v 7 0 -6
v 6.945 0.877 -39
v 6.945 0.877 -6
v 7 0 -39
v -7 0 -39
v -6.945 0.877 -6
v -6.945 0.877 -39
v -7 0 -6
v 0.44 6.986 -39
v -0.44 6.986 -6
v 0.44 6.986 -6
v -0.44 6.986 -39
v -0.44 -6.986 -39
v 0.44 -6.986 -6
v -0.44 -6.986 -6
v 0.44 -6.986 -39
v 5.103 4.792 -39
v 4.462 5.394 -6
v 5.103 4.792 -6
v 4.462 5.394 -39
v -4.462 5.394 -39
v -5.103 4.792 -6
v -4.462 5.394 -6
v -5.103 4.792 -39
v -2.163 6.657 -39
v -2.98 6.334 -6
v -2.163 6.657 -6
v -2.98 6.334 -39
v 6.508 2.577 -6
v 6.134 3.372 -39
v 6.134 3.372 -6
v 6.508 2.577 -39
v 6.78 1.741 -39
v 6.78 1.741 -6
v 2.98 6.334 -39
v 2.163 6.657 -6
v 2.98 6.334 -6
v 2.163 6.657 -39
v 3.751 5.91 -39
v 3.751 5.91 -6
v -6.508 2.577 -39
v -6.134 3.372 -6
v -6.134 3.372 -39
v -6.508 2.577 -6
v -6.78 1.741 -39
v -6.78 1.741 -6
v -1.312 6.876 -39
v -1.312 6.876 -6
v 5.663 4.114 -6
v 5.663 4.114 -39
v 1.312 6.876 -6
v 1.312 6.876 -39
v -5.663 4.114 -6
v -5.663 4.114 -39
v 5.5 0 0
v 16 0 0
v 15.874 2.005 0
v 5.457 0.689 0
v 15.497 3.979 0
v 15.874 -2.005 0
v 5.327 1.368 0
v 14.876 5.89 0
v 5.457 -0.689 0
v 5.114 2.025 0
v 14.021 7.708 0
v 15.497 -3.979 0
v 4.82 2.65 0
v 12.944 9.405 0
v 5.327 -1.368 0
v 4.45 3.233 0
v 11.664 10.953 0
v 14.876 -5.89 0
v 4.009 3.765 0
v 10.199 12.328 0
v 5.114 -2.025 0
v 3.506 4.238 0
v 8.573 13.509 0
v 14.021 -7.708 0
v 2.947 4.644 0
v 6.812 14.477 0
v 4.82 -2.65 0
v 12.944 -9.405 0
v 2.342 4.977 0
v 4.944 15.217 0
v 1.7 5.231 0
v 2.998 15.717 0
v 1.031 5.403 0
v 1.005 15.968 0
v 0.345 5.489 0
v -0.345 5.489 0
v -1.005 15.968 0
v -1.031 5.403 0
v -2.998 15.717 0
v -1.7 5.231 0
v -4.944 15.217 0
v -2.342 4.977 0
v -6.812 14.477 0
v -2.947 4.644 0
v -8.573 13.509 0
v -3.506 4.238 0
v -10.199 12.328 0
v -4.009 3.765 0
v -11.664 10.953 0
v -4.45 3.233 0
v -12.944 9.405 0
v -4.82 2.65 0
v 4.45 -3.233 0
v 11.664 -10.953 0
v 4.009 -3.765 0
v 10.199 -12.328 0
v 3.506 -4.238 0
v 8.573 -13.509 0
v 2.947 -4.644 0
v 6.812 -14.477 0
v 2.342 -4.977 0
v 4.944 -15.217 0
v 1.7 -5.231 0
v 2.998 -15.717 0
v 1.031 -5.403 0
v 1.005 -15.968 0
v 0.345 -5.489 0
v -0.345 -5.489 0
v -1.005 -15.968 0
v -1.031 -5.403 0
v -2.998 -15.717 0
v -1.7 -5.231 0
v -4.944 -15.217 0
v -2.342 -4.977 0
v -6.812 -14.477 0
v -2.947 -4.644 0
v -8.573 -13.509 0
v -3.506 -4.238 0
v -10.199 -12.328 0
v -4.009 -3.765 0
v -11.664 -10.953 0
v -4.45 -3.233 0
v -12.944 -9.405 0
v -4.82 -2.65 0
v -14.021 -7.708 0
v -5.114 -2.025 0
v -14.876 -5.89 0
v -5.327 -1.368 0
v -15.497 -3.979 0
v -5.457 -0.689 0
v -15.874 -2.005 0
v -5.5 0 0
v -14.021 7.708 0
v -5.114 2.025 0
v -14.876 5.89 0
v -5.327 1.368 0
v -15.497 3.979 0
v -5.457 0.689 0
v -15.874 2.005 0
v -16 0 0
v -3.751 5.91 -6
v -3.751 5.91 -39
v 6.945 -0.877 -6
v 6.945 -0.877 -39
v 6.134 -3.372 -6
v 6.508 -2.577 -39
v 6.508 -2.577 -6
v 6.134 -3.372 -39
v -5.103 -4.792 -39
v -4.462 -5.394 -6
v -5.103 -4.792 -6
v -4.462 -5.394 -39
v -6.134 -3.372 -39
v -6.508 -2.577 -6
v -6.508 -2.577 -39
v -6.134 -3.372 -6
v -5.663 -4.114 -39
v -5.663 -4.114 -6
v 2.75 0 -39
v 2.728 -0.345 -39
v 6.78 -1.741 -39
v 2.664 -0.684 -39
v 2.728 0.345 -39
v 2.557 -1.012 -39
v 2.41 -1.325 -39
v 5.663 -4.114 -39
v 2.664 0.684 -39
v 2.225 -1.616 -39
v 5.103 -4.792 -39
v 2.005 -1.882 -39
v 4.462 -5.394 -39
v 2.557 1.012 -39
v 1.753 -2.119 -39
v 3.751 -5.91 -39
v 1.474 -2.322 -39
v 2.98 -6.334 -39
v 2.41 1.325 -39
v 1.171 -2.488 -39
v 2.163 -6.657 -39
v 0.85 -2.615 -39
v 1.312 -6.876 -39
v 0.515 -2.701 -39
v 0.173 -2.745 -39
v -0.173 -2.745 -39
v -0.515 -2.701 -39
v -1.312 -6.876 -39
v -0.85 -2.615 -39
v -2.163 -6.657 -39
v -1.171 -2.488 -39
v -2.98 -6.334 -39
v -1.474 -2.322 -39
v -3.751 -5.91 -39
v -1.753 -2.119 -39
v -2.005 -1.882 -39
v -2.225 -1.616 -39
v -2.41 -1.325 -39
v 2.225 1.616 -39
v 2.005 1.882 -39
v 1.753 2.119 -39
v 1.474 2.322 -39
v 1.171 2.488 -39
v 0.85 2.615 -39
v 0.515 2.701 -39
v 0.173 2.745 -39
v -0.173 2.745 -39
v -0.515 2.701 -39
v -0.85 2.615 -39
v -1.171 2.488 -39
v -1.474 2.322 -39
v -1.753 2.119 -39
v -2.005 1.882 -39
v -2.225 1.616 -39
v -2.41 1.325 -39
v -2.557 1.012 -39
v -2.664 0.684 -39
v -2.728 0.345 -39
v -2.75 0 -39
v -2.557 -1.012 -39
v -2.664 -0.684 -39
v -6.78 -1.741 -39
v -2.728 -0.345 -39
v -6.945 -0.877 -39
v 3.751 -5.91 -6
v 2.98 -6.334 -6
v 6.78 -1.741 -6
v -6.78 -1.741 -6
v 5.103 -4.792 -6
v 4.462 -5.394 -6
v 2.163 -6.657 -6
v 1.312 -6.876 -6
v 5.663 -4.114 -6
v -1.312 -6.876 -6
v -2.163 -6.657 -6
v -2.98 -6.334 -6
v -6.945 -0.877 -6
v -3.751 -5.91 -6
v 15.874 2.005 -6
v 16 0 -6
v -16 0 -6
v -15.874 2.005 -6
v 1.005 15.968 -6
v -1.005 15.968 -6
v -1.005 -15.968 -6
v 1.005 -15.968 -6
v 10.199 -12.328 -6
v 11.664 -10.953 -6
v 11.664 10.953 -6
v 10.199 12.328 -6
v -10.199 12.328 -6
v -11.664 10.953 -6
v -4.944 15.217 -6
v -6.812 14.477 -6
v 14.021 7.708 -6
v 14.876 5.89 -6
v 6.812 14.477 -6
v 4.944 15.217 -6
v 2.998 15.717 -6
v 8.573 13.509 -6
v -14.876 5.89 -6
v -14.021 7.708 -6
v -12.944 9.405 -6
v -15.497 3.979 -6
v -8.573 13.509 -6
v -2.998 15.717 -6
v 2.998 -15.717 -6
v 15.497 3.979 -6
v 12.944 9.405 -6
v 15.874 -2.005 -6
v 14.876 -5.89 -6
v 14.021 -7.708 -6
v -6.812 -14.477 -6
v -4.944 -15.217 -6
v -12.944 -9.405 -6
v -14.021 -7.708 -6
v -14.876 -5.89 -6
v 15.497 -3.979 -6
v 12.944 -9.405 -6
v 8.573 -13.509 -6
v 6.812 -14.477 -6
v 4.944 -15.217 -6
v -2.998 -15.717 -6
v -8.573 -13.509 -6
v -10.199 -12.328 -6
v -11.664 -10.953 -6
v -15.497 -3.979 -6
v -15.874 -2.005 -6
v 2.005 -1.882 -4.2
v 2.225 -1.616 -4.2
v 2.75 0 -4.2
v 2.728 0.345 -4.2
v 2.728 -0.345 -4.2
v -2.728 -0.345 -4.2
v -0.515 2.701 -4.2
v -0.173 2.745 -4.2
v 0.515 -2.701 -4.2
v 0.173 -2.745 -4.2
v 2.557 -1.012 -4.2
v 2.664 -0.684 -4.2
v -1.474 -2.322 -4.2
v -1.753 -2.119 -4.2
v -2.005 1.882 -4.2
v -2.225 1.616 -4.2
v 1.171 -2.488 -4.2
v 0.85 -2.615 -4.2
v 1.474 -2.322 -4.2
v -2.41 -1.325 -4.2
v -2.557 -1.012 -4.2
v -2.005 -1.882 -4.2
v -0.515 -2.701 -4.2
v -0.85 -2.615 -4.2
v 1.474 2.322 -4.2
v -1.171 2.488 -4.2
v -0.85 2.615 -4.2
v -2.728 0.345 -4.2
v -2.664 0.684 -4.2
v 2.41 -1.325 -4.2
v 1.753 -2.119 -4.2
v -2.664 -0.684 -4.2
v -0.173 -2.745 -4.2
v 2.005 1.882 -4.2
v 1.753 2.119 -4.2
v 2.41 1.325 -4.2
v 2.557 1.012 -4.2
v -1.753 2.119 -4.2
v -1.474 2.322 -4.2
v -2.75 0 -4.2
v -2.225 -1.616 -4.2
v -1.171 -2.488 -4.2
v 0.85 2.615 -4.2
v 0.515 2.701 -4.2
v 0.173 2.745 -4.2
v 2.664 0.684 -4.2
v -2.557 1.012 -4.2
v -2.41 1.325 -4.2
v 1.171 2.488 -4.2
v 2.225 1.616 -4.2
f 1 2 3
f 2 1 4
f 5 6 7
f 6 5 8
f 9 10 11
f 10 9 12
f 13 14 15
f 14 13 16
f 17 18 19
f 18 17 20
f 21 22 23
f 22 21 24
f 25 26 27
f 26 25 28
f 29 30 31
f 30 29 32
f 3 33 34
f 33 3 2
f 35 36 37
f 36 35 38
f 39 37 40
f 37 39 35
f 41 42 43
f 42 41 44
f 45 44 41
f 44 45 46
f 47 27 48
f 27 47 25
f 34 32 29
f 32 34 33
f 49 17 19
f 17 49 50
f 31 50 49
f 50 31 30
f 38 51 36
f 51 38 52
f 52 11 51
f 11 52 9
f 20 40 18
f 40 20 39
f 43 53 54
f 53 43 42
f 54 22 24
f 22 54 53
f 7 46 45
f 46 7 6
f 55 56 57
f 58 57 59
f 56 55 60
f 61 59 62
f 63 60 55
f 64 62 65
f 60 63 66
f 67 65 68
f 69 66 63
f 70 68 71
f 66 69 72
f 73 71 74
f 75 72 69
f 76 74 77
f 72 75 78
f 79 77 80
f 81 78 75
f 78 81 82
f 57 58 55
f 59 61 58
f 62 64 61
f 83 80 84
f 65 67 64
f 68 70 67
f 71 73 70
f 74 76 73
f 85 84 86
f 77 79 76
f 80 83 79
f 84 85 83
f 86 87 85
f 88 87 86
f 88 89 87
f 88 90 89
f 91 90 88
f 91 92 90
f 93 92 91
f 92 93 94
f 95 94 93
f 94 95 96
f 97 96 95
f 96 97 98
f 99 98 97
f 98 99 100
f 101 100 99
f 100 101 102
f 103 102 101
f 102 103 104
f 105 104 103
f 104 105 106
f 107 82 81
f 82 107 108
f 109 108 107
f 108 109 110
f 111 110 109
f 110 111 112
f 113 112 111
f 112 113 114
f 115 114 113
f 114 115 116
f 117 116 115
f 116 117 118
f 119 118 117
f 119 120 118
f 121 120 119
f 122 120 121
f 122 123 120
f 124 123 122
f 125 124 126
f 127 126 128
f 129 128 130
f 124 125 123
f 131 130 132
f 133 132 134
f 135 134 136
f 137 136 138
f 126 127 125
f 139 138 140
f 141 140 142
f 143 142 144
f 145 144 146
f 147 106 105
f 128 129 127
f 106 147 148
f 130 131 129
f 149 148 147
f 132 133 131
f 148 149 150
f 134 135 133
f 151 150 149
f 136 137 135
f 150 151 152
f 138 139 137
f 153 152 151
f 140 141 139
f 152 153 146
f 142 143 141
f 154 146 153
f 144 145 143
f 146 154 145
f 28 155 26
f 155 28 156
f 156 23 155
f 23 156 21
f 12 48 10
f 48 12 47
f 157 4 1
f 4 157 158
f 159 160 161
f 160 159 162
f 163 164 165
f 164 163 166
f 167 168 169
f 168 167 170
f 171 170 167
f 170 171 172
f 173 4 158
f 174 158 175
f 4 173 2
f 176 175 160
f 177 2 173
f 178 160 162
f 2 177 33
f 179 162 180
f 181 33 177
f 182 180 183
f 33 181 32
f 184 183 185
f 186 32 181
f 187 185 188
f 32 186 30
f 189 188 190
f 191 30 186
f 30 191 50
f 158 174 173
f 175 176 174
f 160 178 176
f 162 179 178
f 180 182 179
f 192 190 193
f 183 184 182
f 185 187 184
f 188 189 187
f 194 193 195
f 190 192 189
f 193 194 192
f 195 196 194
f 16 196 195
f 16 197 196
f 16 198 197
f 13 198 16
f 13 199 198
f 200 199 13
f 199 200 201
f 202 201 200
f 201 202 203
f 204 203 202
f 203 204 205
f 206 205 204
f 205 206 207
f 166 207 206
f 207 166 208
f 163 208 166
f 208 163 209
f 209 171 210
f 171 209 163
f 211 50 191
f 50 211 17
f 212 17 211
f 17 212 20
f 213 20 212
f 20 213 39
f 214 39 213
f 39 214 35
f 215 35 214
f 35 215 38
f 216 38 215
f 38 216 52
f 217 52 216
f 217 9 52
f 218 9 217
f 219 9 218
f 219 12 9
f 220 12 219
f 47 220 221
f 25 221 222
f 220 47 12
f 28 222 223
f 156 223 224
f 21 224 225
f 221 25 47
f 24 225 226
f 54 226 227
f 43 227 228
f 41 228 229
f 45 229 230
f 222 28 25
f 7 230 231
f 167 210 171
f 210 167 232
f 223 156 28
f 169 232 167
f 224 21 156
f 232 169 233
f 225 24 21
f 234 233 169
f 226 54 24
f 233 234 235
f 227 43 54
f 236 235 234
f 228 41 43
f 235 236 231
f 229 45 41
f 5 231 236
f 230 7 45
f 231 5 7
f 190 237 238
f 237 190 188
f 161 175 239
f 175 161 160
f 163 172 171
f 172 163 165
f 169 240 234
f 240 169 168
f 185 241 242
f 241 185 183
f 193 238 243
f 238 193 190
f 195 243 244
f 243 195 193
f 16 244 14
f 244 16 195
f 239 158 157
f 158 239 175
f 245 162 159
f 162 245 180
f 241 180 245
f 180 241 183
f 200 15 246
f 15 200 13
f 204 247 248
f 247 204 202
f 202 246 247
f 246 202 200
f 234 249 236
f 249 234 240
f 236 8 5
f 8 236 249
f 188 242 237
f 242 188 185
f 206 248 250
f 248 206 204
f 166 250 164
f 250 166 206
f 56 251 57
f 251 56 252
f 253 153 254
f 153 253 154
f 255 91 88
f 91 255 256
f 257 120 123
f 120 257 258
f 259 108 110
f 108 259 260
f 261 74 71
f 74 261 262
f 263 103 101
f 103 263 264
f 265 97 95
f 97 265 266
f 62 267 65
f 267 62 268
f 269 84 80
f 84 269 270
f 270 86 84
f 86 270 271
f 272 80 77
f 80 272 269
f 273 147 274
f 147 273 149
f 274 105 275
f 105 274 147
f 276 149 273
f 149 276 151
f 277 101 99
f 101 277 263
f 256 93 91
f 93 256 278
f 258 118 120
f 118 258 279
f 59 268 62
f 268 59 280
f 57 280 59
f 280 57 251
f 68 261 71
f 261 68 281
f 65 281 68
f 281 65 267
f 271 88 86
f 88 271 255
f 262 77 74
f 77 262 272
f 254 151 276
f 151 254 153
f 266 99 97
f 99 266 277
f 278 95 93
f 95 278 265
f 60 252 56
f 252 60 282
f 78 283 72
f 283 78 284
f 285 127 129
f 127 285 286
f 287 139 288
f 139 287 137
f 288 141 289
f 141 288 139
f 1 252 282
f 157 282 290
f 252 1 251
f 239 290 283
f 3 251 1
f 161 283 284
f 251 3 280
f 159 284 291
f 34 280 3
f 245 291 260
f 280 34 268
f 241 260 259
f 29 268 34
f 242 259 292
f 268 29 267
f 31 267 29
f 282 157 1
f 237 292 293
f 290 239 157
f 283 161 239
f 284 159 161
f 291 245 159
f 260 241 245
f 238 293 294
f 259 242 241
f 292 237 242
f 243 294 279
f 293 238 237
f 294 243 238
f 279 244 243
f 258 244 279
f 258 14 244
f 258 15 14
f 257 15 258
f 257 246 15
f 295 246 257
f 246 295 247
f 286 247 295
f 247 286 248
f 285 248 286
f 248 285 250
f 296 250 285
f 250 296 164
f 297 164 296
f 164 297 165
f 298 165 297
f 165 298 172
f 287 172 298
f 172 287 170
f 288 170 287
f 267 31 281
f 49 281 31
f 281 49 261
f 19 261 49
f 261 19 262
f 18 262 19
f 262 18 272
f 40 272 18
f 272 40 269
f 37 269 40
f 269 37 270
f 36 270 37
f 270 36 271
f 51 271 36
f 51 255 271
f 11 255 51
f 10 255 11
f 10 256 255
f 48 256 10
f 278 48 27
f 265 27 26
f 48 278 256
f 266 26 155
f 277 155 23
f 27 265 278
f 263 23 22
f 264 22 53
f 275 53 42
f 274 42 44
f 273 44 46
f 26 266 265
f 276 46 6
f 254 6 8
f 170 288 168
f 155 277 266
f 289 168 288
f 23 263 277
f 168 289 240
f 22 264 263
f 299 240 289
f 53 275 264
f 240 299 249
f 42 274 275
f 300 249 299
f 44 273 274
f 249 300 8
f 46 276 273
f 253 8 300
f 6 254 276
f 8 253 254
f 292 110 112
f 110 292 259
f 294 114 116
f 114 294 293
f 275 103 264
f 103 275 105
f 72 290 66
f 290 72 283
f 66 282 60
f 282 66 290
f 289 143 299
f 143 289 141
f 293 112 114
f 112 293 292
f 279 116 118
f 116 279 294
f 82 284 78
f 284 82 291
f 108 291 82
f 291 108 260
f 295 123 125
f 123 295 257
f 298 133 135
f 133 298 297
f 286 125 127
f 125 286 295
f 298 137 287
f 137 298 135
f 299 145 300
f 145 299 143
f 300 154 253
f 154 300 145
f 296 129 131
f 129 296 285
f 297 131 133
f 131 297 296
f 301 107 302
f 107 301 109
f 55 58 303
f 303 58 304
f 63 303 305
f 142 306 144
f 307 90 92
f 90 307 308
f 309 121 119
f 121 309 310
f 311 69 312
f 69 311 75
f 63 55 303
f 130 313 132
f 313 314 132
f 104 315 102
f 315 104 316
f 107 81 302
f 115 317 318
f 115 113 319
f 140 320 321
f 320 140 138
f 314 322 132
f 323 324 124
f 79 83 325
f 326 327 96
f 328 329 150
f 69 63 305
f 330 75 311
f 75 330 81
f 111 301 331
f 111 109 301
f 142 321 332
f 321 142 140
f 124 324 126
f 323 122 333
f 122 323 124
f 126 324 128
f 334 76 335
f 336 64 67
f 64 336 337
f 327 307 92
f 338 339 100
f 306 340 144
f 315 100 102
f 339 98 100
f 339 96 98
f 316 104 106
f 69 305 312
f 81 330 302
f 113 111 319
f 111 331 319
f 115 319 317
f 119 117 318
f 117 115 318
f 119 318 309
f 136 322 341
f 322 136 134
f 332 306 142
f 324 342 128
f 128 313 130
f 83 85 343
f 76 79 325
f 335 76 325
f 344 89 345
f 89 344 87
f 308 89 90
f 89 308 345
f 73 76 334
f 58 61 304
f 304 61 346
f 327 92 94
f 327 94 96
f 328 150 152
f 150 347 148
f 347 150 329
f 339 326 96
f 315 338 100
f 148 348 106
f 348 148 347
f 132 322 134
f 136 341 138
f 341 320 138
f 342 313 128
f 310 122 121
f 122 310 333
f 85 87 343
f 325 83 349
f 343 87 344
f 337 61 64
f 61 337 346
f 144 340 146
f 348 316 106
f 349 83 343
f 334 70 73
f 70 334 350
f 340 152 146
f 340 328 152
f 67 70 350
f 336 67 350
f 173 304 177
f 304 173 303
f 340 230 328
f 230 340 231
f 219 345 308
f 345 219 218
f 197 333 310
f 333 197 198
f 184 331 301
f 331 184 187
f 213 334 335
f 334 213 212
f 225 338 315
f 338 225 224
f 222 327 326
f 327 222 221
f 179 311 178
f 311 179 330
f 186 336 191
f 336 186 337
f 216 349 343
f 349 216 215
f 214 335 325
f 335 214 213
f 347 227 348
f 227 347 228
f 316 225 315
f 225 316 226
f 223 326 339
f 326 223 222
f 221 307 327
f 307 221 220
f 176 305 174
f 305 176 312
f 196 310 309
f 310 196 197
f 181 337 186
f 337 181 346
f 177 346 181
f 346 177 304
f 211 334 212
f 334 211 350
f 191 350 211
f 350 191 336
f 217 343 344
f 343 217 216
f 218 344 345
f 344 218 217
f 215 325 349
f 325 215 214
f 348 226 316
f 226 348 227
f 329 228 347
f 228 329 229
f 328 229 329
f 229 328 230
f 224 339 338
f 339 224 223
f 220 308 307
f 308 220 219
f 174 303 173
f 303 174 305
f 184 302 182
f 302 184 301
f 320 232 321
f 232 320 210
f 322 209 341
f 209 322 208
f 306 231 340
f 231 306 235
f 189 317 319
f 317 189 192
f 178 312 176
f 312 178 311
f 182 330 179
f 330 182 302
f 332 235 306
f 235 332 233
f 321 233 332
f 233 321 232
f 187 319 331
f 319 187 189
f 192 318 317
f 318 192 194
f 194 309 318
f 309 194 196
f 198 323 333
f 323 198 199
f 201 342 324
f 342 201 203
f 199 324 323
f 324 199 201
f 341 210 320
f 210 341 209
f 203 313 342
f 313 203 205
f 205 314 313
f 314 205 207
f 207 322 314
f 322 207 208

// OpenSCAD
$fn = 50;


difference() {
	union() {
		translate(v = [0, 0, -39.0000000000]) {
			cylinder(h = 39, r = 7.0000000000);
		}
		translate(v = [0, 0, -6.0000000000]) {
			cylinder(h = 6, r = 16.0000000000);
		}
	}
	union() {
		translate(v = [0, 0, 0]) {
			rotate(a = [0, 0, 0]) {
				difference() {
					union() {
						#translate(v = [0, 0, -39.0000000000]) {
							cylinder(h = 39, r = 2.2500000000);
						}
						#translate(v = [0, 0, -4.2000000000]) {
							cylinder(h = 4.2000000000, r1 = 2.7500000000, r2 = 5.5000000000);
						}
						#translate(v = [0, 0, -39.0000000000]) {
							cylinder(h = 39, r = 2.7500000000);
						}
						#translate(v = [0, 0, -39.0000000000]) {
							cylinder(h = 39, r = 2.2500000000);
						}
					}
					union();
				}
			}
		}
	}
}
